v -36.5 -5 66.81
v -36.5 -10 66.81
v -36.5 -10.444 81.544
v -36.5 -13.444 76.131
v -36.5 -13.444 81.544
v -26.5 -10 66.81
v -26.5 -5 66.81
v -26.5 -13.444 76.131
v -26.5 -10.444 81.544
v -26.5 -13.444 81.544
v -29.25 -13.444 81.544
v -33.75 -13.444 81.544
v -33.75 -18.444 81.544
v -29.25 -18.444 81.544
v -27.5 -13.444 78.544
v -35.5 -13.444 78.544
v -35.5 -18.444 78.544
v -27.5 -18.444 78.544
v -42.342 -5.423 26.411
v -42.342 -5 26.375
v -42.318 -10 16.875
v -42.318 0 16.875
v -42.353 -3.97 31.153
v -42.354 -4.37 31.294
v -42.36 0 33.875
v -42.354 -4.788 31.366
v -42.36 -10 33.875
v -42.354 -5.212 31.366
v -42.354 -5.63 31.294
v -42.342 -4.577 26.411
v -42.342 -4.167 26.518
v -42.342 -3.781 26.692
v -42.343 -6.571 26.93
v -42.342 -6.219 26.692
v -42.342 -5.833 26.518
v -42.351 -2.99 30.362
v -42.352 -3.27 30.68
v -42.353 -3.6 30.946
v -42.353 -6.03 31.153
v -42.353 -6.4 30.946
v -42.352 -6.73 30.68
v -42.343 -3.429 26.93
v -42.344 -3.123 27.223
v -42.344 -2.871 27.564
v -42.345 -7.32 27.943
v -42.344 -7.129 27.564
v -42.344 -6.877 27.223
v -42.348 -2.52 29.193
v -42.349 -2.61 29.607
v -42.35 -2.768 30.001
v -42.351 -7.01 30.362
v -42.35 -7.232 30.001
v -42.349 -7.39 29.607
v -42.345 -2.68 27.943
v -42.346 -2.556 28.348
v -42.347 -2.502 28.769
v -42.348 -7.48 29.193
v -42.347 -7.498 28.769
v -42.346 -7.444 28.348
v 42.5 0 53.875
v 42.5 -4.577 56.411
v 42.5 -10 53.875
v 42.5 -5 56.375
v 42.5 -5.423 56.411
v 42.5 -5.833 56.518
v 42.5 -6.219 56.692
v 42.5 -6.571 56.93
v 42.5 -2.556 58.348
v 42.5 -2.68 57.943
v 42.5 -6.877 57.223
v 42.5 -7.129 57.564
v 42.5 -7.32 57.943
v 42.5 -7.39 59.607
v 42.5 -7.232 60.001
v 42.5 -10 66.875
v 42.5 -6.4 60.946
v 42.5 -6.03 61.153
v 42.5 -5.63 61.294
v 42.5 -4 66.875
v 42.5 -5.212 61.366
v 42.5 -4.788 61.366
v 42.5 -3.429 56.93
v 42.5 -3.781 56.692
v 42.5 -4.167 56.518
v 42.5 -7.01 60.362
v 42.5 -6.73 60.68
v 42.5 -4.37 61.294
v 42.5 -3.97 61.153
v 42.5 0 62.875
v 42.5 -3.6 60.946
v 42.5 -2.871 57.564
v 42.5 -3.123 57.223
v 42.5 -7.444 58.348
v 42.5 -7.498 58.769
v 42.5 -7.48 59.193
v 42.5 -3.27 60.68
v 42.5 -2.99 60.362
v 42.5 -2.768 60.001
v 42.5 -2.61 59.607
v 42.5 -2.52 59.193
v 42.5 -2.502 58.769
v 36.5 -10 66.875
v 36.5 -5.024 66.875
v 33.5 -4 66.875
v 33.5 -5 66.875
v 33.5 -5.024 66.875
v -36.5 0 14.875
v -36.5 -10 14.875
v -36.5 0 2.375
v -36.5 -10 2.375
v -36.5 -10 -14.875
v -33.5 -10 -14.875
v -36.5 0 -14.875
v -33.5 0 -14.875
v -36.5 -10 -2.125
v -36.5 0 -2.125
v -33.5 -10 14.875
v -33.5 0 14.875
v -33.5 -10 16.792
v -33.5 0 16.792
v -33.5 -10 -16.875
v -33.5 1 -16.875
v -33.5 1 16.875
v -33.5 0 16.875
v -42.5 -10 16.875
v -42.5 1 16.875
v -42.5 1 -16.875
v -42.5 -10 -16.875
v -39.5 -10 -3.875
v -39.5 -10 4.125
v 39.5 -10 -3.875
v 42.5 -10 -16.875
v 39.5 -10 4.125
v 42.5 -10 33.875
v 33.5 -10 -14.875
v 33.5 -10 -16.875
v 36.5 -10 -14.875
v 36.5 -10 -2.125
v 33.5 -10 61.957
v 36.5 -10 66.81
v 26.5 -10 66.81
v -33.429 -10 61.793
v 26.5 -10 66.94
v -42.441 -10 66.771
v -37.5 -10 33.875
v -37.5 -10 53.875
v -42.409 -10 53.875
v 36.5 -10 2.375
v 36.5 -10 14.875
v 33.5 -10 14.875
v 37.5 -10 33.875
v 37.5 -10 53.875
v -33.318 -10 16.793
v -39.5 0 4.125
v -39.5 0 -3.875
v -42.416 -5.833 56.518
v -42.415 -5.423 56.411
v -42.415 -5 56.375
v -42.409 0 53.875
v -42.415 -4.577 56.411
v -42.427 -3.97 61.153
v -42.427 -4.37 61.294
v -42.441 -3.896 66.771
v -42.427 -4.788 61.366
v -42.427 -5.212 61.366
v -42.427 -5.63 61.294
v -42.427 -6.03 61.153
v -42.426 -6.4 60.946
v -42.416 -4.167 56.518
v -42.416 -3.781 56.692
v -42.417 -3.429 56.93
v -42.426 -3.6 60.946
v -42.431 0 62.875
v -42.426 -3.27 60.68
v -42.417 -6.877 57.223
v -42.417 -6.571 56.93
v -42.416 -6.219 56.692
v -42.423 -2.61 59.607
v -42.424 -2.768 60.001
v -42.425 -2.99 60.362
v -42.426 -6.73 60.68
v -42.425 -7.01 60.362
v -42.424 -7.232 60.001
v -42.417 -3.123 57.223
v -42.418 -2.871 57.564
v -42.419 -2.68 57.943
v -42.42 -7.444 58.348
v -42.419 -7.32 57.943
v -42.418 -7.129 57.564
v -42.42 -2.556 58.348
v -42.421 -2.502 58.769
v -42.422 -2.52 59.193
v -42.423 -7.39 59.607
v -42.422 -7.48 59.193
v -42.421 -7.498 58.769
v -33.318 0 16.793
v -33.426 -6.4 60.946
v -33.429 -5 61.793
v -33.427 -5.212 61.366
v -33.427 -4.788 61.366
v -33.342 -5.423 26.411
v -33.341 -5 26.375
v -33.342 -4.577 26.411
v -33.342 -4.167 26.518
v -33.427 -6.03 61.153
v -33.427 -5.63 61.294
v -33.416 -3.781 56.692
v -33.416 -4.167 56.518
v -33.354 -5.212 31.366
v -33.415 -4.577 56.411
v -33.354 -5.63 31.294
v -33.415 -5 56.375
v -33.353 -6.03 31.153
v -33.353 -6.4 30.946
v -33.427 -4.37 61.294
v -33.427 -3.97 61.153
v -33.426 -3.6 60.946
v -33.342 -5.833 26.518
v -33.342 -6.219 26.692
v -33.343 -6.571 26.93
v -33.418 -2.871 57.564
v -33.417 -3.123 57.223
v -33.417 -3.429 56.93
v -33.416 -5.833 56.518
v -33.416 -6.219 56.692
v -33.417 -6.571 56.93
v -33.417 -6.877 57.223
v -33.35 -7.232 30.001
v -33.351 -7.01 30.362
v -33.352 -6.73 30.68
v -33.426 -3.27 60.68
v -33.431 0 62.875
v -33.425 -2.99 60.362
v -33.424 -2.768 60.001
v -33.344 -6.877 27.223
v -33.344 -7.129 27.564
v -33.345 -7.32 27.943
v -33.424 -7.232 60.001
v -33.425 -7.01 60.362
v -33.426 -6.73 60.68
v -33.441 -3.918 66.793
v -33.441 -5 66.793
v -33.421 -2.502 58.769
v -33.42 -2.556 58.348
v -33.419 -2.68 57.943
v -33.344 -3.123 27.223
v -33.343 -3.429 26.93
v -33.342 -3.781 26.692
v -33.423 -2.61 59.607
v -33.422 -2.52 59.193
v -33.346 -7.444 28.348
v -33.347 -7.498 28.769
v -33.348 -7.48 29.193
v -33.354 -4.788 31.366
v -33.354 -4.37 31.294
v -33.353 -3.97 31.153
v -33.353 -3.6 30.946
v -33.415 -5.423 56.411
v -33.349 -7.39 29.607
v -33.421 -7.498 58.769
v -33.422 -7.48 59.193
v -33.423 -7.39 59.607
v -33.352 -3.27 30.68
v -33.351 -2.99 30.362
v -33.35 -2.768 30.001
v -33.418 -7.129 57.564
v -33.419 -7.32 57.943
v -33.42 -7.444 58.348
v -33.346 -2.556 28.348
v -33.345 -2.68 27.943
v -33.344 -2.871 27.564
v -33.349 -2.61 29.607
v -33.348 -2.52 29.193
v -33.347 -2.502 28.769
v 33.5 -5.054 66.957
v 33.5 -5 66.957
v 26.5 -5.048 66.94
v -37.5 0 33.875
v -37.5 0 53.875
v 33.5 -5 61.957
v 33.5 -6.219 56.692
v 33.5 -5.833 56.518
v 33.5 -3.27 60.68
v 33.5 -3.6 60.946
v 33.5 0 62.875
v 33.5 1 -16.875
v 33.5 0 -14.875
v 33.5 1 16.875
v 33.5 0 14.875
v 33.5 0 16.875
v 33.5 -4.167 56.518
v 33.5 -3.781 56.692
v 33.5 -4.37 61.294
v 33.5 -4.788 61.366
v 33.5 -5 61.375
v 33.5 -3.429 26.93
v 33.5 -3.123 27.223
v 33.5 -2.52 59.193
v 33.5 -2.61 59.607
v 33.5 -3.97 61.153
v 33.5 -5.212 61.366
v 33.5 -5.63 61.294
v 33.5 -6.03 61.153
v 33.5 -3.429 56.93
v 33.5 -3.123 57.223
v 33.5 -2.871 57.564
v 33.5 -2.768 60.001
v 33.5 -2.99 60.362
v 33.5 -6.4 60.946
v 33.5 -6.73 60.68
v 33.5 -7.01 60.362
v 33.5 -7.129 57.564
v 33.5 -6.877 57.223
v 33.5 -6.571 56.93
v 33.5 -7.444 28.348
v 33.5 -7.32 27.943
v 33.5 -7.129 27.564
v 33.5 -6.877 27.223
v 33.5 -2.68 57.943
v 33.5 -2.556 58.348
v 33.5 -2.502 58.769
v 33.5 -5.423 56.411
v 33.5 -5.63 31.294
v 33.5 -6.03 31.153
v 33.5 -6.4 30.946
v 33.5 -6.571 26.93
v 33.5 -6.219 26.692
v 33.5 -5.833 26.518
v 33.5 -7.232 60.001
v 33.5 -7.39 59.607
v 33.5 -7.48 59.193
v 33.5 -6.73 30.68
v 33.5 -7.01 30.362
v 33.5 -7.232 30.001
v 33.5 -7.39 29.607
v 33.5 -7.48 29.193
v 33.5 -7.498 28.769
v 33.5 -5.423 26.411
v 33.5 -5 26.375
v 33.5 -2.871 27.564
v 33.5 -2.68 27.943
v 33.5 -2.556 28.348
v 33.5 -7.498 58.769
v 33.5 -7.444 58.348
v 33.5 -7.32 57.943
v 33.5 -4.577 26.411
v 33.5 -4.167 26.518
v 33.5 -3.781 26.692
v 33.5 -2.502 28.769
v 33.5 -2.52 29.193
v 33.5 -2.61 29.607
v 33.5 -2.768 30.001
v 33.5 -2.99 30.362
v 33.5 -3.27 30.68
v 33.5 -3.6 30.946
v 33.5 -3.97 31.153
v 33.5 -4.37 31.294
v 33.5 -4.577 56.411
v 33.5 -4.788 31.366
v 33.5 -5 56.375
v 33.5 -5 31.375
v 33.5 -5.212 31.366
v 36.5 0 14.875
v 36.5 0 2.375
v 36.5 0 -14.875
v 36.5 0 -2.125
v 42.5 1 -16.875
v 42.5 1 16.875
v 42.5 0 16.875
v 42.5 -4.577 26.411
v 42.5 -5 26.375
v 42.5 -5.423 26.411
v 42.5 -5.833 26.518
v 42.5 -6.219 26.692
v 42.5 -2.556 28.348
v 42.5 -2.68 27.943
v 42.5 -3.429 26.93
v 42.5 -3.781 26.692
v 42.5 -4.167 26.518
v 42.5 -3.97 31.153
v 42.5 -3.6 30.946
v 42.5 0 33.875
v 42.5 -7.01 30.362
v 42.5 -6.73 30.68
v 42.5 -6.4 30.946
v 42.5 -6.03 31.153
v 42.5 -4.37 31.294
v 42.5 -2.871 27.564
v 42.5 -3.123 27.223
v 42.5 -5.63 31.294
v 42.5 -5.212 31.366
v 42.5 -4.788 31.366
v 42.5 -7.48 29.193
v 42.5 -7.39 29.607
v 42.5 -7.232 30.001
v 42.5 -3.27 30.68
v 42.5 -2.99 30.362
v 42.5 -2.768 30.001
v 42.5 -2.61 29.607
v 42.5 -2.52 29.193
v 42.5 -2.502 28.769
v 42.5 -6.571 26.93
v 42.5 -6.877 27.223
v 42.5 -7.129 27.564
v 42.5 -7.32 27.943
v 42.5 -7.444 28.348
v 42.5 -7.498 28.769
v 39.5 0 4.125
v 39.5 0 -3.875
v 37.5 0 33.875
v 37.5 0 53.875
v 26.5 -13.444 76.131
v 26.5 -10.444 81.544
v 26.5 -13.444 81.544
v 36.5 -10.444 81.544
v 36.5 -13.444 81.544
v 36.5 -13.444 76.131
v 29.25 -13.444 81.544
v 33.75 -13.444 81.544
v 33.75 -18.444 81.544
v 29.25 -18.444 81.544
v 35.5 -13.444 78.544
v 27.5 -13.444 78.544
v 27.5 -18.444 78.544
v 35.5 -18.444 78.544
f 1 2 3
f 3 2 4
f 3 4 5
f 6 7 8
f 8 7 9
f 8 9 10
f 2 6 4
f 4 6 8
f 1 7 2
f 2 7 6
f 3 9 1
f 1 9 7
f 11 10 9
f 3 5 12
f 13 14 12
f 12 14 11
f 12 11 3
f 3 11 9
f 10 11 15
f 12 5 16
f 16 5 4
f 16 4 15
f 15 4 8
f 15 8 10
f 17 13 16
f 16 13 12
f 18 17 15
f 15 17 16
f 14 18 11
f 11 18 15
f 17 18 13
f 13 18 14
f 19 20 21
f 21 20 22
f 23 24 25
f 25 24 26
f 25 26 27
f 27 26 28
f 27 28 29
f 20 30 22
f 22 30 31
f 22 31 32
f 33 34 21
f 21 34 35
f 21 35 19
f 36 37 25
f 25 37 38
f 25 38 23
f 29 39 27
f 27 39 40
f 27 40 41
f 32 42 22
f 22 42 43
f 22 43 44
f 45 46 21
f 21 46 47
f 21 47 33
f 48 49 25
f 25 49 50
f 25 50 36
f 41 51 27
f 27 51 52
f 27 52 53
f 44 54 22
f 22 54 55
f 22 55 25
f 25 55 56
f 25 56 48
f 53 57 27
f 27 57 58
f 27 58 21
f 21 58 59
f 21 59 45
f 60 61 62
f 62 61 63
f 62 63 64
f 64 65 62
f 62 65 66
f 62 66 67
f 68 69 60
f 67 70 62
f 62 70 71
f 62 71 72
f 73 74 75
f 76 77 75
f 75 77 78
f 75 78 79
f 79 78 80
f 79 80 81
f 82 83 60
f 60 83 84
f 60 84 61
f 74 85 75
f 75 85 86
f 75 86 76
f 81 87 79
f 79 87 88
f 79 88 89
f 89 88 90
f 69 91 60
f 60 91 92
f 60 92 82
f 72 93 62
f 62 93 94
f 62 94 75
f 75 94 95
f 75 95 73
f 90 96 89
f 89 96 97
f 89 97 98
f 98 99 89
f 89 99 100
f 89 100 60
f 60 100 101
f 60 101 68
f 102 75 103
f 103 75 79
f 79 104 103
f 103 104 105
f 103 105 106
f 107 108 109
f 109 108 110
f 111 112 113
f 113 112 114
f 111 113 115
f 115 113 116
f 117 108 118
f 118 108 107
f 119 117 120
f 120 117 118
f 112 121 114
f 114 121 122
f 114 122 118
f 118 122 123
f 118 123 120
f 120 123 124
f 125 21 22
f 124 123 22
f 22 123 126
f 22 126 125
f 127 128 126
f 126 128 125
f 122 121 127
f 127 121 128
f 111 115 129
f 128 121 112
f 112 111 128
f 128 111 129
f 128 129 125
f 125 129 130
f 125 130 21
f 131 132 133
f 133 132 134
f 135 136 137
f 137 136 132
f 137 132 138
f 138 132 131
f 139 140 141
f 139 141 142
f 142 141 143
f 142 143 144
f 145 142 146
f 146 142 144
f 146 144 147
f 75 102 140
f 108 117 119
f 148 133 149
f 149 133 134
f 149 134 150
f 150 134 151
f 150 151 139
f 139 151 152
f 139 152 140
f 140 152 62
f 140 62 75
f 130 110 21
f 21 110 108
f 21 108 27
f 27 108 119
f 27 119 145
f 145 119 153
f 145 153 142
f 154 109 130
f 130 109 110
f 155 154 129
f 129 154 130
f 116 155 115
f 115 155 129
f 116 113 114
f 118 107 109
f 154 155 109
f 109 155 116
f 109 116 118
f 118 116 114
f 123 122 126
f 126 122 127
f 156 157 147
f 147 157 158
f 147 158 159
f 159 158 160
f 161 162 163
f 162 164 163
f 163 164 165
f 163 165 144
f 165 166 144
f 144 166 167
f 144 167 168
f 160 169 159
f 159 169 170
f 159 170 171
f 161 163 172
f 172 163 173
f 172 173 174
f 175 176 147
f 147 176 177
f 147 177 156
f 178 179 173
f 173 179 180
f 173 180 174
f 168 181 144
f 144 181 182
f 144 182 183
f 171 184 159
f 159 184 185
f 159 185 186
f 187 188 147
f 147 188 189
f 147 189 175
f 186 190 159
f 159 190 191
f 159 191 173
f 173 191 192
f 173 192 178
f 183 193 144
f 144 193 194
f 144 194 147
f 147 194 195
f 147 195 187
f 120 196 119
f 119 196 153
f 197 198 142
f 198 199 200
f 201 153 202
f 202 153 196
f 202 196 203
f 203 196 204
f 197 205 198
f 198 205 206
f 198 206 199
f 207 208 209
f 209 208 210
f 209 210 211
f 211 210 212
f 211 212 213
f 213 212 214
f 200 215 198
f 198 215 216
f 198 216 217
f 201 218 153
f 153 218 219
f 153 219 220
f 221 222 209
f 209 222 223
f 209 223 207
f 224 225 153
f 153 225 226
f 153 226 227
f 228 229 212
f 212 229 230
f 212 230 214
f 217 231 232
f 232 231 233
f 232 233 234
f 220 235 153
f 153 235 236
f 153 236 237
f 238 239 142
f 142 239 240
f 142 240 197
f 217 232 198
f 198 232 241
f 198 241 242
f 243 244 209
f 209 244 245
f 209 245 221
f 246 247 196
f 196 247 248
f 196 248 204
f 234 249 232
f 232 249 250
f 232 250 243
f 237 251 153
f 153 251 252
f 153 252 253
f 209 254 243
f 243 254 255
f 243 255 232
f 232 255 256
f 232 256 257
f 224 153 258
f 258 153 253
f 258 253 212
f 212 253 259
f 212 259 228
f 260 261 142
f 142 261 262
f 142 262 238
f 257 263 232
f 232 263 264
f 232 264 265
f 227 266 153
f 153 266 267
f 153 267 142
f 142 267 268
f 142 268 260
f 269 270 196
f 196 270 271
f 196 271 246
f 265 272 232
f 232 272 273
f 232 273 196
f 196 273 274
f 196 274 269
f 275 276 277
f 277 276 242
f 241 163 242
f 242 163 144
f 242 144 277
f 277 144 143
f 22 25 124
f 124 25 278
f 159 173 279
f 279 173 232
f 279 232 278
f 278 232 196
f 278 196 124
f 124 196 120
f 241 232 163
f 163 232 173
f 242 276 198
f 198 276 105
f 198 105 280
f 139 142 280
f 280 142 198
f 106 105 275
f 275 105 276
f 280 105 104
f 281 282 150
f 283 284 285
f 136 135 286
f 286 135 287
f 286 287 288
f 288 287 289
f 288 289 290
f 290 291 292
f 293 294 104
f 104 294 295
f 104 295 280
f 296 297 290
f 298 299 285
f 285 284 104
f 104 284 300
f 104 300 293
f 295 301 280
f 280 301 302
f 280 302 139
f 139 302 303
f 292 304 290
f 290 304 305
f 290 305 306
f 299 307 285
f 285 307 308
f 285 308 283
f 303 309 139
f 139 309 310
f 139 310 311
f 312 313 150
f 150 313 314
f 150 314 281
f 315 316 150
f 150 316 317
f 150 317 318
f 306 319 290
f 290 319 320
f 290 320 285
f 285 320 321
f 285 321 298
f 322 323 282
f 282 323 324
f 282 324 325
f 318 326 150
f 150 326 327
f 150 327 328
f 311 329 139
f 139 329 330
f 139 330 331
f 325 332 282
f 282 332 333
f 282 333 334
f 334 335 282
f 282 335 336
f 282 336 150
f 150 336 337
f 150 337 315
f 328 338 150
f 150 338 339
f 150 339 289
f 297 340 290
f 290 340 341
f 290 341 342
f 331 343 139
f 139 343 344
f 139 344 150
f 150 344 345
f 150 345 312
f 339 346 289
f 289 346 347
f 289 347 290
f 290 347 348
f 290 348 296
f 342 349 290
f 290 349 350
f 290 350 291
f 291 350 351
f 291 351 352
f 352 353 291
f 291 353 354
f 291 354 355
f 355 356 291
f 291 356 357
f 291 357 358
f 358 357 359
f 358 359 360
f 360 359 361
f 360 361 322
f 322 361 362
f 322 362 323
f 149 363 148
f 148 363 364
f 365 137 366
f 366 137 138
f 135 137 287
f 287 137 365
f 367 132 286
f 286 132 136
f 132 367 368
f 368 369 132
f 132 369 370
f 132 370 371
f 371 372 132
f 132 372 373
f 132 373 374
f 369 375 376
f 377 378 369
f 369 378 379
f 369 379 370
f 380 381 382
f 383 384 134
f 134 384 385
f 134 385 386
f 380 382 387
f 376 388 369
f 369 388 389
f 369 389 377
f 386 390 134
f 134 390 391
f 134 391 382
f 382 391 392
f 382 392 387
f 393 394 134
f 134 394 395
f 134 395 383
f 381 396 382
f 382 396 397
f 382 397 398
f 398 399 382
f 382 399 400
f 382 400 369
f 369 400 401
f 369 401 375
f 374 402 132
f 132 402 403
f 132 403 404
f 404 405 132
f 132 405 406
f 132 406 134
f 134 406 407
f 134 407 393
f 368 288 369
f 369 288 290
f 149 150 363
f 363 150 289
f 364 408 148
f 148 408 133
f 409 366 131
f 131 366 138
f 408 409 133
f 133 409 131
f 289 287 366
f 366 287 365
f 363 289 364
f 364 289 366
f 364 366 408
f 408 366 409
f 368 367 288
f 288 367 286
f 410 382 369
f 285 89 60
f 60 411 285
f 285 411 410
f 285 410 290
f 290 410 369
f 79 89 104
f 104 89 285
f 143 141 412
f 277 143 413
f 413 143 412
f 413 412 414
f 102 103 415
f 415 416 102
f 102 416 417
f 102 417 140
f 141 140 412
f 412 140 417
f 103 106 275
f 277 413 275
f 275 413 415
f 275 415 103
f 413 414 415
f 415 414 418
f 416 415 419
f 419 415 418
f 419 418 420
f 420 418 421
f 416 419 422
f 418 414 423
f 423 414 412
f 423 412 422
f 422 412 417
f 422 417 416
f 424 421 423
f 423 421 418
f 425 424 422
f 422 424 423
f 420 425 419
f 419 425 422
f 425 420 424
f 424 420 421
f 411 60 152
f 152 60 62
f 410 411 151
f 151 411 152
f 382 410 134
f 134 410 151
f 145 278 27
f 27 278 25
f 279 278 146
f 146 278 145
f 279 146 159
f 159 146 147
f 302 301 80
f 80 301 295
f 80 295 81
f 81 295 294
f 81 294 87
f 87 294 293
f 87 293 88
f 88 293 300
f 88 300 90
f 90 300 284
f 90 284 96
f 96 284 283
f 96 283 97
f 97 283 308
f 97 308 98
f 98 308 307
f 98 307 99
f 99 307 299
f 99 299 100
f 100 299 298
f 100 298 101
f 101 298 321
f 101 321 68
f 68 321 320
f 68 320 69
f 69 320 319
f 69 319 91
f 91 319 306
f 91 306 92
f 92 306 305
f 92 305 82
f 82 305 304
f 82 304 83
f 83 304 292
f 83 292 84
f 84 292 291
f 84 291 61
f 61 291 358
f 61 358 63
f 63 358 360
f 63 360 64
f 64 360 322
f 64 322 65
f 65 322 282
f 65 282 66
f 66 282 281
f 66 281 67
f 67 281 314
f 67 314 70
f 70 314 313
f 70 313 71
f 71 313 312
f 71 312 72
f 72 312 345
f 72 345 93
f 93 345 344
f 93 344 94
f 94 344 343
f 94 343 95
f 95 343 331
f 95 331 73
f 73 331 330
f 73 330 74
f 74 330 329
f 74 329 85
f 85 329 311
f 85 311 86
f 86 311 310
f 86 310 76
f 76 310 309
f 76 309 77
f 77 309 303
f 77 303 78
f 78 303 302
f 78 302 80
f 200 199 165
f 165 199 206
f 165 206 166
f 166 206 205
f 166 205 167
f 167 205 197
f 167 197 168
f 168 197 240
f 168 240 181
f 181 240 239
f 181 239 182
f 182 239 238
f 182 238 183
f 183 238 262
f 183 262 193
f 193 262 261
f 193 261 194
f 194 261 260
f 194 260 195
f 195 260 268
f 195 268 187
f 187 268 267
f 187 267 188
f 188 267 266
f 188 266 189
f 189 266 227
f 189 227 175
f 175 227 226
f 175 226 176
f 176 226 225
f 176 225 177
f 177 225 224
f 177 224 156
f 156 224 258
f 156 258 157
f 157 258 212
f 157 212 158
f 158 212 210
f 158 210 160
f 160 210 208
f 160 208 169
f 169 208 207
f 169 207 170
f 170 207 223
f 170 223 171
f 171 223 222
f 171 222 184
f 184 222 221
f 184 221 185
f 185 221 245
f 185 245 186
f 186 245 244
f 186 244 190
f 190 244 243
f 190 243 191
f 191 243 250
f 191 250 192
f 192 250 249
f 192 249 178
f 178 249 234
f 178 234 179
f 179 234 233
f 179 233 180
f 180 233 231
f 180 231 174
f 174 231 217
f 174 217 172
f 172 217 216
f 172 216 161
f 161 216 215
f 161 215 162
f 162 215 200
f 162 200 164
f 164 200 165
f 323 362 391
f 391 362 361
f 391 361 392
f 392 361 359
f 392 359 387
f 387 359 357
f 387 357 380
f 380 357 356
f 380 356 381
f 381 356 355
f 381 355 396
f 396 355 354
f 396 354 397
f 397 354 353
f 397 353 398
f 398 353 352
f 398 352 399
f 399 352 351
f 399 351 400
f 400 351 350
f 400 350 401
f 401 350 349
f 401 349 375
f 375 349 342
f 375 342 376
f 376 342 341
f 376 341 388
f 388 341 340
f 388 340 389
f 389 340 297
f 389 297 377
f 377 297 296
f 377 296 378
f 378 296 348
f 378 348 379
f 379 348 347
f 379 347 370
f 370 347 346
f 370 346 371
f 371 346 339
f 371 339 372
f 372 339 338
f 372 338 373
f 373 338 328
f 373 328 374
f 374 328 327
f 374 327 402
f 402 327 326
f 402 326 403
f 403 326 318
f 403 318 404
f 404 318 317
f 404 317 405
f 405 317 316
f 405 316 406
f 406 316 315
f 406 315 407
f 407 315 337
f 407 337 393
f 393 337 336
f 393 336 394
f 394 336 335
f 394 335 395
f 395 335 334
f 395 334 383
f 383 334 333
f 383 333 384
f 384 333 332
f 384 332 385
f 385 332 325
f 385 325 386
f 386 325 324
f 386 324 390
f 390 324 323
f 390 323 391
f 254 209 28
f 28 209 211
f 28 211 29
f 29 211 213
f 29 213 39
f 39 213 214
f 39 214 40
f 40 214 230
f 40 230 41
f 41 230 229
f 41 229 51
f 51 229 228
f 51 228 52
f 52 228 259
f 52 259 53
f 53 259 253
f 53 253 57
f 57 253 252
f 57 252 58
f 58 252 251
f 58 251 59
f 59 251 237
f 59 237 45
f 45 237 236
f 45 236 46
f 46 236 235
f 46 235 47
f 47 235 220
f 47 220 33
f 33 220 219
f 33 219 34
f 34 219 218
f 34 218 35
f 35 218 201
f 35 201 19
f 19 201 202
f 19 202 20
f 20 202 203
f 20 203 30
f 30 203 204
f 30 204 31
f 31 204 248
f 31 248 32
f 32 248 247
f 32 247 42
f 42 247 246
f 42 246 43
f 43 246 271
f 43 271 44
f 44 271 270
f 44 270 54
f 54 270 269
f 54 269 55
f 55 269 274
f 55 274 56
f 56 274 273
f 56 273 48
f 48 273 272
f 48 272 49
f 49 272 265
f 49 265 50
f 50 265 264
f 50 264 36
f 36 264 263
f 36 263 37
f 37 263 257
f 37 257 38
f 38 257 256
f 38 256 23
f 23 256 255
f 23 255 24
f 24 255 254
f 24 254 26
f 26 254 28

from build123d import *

# Parameters (mm, degrees)
EXTRUDE_3_DEPTH     = 10
EXTRUDE_3_2_DEPTH   = 10
CUT_EXTRUDE_1_DEPTH = 10
SKETCH_5_W          = 9
SKETCH_5_H          = 33.75
EXTRUDE_4_DEPTH     = 1
EXTRUDE_START       = -1
SKETCH_6_W          = 9
SKETCH_6_H          = 50
EXTRUDE_5_DEPTH     = 10
CUT_EXTRUDE_2_DEPTH = 109.615218202
EXTRUDE_6_REACH     = 103.613
SKETCH_8_W          = 5
SKETCH_8_H          = 5
EXTRUDE_7_DEPTH     = 10
EXTRUDE_START_2     = -10
EXTRUDE_8_DEPTH     = 10
EXTRUDE_9_DEPTH     = 5
SKETCH_12_W         = 5
SKETCH_12_H         = 20
CUT_EXTRUDE_3_DEPTH = 10
SKETCH_13_R         = 2.5
CUT_EXTRUDE_4_DEPTH = 120.224997159


with BuildPart() as part:
    # Эскиз3 → Бобышка-Вытянуть3 (new body)
    with BuildSketch(Plane(origin=(0, 0, 0), x_dir=(1, 0, 0), z_dir=(0, 1, 0))):
        Polygon((-33.5, 14.875), (-33.5, 16.875), (-42.5, 16.875), (-42.5, -16.875), (-33.5, -16.875), (-33.5, -14.875), (-36.5, -14.875), (-36.5, 14.875), align=None)
    extrude(amount=-EXTRUDE_3_DEPTH)


with BuildPart() as body_2:
    # Эскиз3 → Extrude 3 2 (new body)
    with BuildSketch(Plane(origin=(0, 0, 0), x_dir=(1, 0, 0), z_dir=(0, 1, 0))):
        Polygon((36.5, 14.875), (33.5, 14.875), (33.5, 16.875), (42.5, 16.875), (42.5, -16.875), (33.5, -16.875), (33.5, -14.875), (36.5, -14.875), align=None)
    extrude(amount=-EXTRUDE_3_2_DEPTH)


with BuildPart() as cut_extrude_1_tool:
    # Эскиз4 → Вырез-Вытянуть1 (new body)
    with BuildSketch(Plane(origin=(0, 0, 0), x_dir=(1, 0, 0), z_dir=(0, 1, 0))):
        Polygon((-36.5, 2.125), (-39.5, 3.875), (-39.5, -4.125), (-36.5, -2.375), align=None)
        Polygon((36.5, -2.375), (36.5, 2.125), (39.5, 3.875), (39.5, -4.125), align=None)
    extrude(amount=-CUT_EXTRUDE_1_DEPTH)


with BuildPart() as part_1:
    add(part.part)

    # Вырез-Вытянуть1: cut by cut_extrude_1_tool
    add(cut_extrude_1_tool.part, mode=Mode.SUBTRACT)



with BuildPart() as body_2_1:
    add(body_2.part)

    # Вырез-Вытянуть1: cut by cut_extrude_1_tool
    add(cut_extrude_1_tool.part, mode=Mode.SUBTRACT)


with BuildPart() as part_2:
    add(part_1.part)

    add(body_2_1.part)  # Бобышка-Вытянуть4 merges body 2
    # Эскиз5 → Бобышка-Вытянуть4 (add)
    with BuildSketch(Plane(origin=(0, 0, 0), x_dir=(1, 0, 0), z_dir=(0, 1, 0))):
        with Locations((-38, 0)):
            Rectangle(SKETCH_5_W, SKETCH_5_H)
        with Locations((38, 0)):
            Rectangle(SKETCH_5_W, SKETCH_5_H)
    extrude(amount=EXTRUDE_4_DEPTH)

    # Эскиз6 → Бобышка-Вытянуть5 (add)
    with BuildSketch(Plane(origin=(0, 1, 0), x_dir=(1, 0, 0), z_dir=(0, 1, 0)).offset(EXTRUDE_START)):
        Polygon((-42.440780706, -66.770624684), (-33.440807885, -66.792743069), (-33.317927971, -16.792894064), (-42.317900792, -16.770775679), align=None)
        with Locations((38, -41.875)):
            Rectangle(SKETCH_6_W, SKETCH_6_H)
    extrude(amount=-EXTRUDE_5_DEPTH)

    # Эскиз7 → Вырез-Вытянуть2 (cut, through all)
    with BuildSketch(Plane(origin=(42.5, 0, 0), x_dir=(0, 0, -1), z_dir=(1, 0, 0))):
        Polygon((-62.875, 0), (-66.875, -4), (-66.875, 0), align=None)
    extrude(amount=-CUT_EXTRUDE_2_DEPTH, mode=Mode.SUBTRACT)

    # Бобышка-Вытянуть6: up to this plane
    extrude_6_end = Plane(origin=(33.5, -10, -14.875), z_dir=(-1, 0, 0))
    # Эскиз8 → Бобышка-Вытянуть6 (add, up to the surface)
    with BuildSketch(Plane(origin=(-33.276456675, 0, -0.08178041), x_dir=(0.0024575982770184833, 0, -0.9999969801007945), z_dir=(0.9999969801007945, 0, 0.0024575982770184833)), mode=Mode.PRIVATE) as extrude_6_sk1:
        with Locations((-64.374725433, -7.5)):
            Rectangle(SKETCH_8_W, SKETCH_8_H)
    extrude_6_tool1 = split(extrude(extrude_6_sk1.sketch, amount=EXTRUDE_6_REACH, mode=Mode.PRIVATE), bisect_by=extrude_6_end, keep=Keep.BOTH, mode=Mode.PRIVATE)
    add(extrude_6_tool1.solids().sort_by_distance((-33.434664, -7.5, 64.292751))[0])

    # Эскиз10 → Бобышка-Вытянуть8 (add)
    with BuildSketch(Plane(origin=(36.5, 0, 0), x_dir=(0, 0, -1), z_dir=(1, 0, 0)).offset(EXTRUDE_START_2)):
        Polygon((-81.544047558, -10.443650814), (-81.544047558, -13.443650814), (-76.13067803, -13.443650814), (-66.809800838, -10), (-66.809800838, -5), align=None)
    extrude(amount=EXTRUDE_8_DEPTH)



with BuildPart() as body_2_2:
    # Эскиз9 → Бобышка-Вытянуть7 (new body)
    with BuildSketch(Plane(origin=(-26.5, 0, 0), x_dir=(0, 0, -1), z_dir=(1, 0, 0))):
        Polygon((-81.544047558, -13.443650814), (-81.544047558, -10.443650814), (-66.809800838, -5), (-66.809800838, -10), (-76.13067803, -13.443650814), align=None)
    extrude(amount=-EXTRUDE_7_DEPTH)


with BuildPart() as part_3:
    add(part_2.part)

    add(body_2_2.part)  # Бобышка-Вытянуть9 merges body 2 2
    # Эскиз11 → Бобышка-Вытянуть9 (add)
    with BuildSketch(Plane.XZ.offset(13.443650814)):
        Polygon((-33.75, 81.544047558), (-35.5, 78.544047558), (-27.5, 78.544047558), (-29.25, 81.544047558), align=None)
        Polygon((27.5, 78.544047558), (35.5, 78.544047558), (33.75, 81.544047558), (29.25, 81.544047558), align=None)
    extrude(amount=EXTRUDE_9_DEPTH)

    # Эскиз12 → Вырез-Вытянуть3 (cut)
    with BuildSketch(Plane(origin=(0, 0, 0), x_dir=(1, 0, 0), z_dir=(0, 1, 0))):
        with Locations((40, -43.875)):
            Rectangle(SKETCH_12_W, SKETCH_12_H)
        with Locations((-40, -43.875)):
            Rectangle(SKETCH_12_W, SKETCH_12_H)
    extrude(amount=-CUT_EXTRUDE_3_DEPTH, mode=Mode.SUBTRACT)

    # Эскиз13 → Вырез-Вытянуть4 (cut, through all)
    with BuildSketch(Plane(origin=(42.5, 0, 0), x_dir=(0, 0, -1), z_dir=(1, 0, 0))):
        with Locations((-58.875, -5)):
            Circle(SKETCH_13_R)
        with Locations((-28.875, -5)):
            Circle(SKETCH_13_R)
    extrude(amount=-CUT_EXTRUDE_4_DEPTH, mode=Mode.SUBTRACT)


solid = part_3.part
